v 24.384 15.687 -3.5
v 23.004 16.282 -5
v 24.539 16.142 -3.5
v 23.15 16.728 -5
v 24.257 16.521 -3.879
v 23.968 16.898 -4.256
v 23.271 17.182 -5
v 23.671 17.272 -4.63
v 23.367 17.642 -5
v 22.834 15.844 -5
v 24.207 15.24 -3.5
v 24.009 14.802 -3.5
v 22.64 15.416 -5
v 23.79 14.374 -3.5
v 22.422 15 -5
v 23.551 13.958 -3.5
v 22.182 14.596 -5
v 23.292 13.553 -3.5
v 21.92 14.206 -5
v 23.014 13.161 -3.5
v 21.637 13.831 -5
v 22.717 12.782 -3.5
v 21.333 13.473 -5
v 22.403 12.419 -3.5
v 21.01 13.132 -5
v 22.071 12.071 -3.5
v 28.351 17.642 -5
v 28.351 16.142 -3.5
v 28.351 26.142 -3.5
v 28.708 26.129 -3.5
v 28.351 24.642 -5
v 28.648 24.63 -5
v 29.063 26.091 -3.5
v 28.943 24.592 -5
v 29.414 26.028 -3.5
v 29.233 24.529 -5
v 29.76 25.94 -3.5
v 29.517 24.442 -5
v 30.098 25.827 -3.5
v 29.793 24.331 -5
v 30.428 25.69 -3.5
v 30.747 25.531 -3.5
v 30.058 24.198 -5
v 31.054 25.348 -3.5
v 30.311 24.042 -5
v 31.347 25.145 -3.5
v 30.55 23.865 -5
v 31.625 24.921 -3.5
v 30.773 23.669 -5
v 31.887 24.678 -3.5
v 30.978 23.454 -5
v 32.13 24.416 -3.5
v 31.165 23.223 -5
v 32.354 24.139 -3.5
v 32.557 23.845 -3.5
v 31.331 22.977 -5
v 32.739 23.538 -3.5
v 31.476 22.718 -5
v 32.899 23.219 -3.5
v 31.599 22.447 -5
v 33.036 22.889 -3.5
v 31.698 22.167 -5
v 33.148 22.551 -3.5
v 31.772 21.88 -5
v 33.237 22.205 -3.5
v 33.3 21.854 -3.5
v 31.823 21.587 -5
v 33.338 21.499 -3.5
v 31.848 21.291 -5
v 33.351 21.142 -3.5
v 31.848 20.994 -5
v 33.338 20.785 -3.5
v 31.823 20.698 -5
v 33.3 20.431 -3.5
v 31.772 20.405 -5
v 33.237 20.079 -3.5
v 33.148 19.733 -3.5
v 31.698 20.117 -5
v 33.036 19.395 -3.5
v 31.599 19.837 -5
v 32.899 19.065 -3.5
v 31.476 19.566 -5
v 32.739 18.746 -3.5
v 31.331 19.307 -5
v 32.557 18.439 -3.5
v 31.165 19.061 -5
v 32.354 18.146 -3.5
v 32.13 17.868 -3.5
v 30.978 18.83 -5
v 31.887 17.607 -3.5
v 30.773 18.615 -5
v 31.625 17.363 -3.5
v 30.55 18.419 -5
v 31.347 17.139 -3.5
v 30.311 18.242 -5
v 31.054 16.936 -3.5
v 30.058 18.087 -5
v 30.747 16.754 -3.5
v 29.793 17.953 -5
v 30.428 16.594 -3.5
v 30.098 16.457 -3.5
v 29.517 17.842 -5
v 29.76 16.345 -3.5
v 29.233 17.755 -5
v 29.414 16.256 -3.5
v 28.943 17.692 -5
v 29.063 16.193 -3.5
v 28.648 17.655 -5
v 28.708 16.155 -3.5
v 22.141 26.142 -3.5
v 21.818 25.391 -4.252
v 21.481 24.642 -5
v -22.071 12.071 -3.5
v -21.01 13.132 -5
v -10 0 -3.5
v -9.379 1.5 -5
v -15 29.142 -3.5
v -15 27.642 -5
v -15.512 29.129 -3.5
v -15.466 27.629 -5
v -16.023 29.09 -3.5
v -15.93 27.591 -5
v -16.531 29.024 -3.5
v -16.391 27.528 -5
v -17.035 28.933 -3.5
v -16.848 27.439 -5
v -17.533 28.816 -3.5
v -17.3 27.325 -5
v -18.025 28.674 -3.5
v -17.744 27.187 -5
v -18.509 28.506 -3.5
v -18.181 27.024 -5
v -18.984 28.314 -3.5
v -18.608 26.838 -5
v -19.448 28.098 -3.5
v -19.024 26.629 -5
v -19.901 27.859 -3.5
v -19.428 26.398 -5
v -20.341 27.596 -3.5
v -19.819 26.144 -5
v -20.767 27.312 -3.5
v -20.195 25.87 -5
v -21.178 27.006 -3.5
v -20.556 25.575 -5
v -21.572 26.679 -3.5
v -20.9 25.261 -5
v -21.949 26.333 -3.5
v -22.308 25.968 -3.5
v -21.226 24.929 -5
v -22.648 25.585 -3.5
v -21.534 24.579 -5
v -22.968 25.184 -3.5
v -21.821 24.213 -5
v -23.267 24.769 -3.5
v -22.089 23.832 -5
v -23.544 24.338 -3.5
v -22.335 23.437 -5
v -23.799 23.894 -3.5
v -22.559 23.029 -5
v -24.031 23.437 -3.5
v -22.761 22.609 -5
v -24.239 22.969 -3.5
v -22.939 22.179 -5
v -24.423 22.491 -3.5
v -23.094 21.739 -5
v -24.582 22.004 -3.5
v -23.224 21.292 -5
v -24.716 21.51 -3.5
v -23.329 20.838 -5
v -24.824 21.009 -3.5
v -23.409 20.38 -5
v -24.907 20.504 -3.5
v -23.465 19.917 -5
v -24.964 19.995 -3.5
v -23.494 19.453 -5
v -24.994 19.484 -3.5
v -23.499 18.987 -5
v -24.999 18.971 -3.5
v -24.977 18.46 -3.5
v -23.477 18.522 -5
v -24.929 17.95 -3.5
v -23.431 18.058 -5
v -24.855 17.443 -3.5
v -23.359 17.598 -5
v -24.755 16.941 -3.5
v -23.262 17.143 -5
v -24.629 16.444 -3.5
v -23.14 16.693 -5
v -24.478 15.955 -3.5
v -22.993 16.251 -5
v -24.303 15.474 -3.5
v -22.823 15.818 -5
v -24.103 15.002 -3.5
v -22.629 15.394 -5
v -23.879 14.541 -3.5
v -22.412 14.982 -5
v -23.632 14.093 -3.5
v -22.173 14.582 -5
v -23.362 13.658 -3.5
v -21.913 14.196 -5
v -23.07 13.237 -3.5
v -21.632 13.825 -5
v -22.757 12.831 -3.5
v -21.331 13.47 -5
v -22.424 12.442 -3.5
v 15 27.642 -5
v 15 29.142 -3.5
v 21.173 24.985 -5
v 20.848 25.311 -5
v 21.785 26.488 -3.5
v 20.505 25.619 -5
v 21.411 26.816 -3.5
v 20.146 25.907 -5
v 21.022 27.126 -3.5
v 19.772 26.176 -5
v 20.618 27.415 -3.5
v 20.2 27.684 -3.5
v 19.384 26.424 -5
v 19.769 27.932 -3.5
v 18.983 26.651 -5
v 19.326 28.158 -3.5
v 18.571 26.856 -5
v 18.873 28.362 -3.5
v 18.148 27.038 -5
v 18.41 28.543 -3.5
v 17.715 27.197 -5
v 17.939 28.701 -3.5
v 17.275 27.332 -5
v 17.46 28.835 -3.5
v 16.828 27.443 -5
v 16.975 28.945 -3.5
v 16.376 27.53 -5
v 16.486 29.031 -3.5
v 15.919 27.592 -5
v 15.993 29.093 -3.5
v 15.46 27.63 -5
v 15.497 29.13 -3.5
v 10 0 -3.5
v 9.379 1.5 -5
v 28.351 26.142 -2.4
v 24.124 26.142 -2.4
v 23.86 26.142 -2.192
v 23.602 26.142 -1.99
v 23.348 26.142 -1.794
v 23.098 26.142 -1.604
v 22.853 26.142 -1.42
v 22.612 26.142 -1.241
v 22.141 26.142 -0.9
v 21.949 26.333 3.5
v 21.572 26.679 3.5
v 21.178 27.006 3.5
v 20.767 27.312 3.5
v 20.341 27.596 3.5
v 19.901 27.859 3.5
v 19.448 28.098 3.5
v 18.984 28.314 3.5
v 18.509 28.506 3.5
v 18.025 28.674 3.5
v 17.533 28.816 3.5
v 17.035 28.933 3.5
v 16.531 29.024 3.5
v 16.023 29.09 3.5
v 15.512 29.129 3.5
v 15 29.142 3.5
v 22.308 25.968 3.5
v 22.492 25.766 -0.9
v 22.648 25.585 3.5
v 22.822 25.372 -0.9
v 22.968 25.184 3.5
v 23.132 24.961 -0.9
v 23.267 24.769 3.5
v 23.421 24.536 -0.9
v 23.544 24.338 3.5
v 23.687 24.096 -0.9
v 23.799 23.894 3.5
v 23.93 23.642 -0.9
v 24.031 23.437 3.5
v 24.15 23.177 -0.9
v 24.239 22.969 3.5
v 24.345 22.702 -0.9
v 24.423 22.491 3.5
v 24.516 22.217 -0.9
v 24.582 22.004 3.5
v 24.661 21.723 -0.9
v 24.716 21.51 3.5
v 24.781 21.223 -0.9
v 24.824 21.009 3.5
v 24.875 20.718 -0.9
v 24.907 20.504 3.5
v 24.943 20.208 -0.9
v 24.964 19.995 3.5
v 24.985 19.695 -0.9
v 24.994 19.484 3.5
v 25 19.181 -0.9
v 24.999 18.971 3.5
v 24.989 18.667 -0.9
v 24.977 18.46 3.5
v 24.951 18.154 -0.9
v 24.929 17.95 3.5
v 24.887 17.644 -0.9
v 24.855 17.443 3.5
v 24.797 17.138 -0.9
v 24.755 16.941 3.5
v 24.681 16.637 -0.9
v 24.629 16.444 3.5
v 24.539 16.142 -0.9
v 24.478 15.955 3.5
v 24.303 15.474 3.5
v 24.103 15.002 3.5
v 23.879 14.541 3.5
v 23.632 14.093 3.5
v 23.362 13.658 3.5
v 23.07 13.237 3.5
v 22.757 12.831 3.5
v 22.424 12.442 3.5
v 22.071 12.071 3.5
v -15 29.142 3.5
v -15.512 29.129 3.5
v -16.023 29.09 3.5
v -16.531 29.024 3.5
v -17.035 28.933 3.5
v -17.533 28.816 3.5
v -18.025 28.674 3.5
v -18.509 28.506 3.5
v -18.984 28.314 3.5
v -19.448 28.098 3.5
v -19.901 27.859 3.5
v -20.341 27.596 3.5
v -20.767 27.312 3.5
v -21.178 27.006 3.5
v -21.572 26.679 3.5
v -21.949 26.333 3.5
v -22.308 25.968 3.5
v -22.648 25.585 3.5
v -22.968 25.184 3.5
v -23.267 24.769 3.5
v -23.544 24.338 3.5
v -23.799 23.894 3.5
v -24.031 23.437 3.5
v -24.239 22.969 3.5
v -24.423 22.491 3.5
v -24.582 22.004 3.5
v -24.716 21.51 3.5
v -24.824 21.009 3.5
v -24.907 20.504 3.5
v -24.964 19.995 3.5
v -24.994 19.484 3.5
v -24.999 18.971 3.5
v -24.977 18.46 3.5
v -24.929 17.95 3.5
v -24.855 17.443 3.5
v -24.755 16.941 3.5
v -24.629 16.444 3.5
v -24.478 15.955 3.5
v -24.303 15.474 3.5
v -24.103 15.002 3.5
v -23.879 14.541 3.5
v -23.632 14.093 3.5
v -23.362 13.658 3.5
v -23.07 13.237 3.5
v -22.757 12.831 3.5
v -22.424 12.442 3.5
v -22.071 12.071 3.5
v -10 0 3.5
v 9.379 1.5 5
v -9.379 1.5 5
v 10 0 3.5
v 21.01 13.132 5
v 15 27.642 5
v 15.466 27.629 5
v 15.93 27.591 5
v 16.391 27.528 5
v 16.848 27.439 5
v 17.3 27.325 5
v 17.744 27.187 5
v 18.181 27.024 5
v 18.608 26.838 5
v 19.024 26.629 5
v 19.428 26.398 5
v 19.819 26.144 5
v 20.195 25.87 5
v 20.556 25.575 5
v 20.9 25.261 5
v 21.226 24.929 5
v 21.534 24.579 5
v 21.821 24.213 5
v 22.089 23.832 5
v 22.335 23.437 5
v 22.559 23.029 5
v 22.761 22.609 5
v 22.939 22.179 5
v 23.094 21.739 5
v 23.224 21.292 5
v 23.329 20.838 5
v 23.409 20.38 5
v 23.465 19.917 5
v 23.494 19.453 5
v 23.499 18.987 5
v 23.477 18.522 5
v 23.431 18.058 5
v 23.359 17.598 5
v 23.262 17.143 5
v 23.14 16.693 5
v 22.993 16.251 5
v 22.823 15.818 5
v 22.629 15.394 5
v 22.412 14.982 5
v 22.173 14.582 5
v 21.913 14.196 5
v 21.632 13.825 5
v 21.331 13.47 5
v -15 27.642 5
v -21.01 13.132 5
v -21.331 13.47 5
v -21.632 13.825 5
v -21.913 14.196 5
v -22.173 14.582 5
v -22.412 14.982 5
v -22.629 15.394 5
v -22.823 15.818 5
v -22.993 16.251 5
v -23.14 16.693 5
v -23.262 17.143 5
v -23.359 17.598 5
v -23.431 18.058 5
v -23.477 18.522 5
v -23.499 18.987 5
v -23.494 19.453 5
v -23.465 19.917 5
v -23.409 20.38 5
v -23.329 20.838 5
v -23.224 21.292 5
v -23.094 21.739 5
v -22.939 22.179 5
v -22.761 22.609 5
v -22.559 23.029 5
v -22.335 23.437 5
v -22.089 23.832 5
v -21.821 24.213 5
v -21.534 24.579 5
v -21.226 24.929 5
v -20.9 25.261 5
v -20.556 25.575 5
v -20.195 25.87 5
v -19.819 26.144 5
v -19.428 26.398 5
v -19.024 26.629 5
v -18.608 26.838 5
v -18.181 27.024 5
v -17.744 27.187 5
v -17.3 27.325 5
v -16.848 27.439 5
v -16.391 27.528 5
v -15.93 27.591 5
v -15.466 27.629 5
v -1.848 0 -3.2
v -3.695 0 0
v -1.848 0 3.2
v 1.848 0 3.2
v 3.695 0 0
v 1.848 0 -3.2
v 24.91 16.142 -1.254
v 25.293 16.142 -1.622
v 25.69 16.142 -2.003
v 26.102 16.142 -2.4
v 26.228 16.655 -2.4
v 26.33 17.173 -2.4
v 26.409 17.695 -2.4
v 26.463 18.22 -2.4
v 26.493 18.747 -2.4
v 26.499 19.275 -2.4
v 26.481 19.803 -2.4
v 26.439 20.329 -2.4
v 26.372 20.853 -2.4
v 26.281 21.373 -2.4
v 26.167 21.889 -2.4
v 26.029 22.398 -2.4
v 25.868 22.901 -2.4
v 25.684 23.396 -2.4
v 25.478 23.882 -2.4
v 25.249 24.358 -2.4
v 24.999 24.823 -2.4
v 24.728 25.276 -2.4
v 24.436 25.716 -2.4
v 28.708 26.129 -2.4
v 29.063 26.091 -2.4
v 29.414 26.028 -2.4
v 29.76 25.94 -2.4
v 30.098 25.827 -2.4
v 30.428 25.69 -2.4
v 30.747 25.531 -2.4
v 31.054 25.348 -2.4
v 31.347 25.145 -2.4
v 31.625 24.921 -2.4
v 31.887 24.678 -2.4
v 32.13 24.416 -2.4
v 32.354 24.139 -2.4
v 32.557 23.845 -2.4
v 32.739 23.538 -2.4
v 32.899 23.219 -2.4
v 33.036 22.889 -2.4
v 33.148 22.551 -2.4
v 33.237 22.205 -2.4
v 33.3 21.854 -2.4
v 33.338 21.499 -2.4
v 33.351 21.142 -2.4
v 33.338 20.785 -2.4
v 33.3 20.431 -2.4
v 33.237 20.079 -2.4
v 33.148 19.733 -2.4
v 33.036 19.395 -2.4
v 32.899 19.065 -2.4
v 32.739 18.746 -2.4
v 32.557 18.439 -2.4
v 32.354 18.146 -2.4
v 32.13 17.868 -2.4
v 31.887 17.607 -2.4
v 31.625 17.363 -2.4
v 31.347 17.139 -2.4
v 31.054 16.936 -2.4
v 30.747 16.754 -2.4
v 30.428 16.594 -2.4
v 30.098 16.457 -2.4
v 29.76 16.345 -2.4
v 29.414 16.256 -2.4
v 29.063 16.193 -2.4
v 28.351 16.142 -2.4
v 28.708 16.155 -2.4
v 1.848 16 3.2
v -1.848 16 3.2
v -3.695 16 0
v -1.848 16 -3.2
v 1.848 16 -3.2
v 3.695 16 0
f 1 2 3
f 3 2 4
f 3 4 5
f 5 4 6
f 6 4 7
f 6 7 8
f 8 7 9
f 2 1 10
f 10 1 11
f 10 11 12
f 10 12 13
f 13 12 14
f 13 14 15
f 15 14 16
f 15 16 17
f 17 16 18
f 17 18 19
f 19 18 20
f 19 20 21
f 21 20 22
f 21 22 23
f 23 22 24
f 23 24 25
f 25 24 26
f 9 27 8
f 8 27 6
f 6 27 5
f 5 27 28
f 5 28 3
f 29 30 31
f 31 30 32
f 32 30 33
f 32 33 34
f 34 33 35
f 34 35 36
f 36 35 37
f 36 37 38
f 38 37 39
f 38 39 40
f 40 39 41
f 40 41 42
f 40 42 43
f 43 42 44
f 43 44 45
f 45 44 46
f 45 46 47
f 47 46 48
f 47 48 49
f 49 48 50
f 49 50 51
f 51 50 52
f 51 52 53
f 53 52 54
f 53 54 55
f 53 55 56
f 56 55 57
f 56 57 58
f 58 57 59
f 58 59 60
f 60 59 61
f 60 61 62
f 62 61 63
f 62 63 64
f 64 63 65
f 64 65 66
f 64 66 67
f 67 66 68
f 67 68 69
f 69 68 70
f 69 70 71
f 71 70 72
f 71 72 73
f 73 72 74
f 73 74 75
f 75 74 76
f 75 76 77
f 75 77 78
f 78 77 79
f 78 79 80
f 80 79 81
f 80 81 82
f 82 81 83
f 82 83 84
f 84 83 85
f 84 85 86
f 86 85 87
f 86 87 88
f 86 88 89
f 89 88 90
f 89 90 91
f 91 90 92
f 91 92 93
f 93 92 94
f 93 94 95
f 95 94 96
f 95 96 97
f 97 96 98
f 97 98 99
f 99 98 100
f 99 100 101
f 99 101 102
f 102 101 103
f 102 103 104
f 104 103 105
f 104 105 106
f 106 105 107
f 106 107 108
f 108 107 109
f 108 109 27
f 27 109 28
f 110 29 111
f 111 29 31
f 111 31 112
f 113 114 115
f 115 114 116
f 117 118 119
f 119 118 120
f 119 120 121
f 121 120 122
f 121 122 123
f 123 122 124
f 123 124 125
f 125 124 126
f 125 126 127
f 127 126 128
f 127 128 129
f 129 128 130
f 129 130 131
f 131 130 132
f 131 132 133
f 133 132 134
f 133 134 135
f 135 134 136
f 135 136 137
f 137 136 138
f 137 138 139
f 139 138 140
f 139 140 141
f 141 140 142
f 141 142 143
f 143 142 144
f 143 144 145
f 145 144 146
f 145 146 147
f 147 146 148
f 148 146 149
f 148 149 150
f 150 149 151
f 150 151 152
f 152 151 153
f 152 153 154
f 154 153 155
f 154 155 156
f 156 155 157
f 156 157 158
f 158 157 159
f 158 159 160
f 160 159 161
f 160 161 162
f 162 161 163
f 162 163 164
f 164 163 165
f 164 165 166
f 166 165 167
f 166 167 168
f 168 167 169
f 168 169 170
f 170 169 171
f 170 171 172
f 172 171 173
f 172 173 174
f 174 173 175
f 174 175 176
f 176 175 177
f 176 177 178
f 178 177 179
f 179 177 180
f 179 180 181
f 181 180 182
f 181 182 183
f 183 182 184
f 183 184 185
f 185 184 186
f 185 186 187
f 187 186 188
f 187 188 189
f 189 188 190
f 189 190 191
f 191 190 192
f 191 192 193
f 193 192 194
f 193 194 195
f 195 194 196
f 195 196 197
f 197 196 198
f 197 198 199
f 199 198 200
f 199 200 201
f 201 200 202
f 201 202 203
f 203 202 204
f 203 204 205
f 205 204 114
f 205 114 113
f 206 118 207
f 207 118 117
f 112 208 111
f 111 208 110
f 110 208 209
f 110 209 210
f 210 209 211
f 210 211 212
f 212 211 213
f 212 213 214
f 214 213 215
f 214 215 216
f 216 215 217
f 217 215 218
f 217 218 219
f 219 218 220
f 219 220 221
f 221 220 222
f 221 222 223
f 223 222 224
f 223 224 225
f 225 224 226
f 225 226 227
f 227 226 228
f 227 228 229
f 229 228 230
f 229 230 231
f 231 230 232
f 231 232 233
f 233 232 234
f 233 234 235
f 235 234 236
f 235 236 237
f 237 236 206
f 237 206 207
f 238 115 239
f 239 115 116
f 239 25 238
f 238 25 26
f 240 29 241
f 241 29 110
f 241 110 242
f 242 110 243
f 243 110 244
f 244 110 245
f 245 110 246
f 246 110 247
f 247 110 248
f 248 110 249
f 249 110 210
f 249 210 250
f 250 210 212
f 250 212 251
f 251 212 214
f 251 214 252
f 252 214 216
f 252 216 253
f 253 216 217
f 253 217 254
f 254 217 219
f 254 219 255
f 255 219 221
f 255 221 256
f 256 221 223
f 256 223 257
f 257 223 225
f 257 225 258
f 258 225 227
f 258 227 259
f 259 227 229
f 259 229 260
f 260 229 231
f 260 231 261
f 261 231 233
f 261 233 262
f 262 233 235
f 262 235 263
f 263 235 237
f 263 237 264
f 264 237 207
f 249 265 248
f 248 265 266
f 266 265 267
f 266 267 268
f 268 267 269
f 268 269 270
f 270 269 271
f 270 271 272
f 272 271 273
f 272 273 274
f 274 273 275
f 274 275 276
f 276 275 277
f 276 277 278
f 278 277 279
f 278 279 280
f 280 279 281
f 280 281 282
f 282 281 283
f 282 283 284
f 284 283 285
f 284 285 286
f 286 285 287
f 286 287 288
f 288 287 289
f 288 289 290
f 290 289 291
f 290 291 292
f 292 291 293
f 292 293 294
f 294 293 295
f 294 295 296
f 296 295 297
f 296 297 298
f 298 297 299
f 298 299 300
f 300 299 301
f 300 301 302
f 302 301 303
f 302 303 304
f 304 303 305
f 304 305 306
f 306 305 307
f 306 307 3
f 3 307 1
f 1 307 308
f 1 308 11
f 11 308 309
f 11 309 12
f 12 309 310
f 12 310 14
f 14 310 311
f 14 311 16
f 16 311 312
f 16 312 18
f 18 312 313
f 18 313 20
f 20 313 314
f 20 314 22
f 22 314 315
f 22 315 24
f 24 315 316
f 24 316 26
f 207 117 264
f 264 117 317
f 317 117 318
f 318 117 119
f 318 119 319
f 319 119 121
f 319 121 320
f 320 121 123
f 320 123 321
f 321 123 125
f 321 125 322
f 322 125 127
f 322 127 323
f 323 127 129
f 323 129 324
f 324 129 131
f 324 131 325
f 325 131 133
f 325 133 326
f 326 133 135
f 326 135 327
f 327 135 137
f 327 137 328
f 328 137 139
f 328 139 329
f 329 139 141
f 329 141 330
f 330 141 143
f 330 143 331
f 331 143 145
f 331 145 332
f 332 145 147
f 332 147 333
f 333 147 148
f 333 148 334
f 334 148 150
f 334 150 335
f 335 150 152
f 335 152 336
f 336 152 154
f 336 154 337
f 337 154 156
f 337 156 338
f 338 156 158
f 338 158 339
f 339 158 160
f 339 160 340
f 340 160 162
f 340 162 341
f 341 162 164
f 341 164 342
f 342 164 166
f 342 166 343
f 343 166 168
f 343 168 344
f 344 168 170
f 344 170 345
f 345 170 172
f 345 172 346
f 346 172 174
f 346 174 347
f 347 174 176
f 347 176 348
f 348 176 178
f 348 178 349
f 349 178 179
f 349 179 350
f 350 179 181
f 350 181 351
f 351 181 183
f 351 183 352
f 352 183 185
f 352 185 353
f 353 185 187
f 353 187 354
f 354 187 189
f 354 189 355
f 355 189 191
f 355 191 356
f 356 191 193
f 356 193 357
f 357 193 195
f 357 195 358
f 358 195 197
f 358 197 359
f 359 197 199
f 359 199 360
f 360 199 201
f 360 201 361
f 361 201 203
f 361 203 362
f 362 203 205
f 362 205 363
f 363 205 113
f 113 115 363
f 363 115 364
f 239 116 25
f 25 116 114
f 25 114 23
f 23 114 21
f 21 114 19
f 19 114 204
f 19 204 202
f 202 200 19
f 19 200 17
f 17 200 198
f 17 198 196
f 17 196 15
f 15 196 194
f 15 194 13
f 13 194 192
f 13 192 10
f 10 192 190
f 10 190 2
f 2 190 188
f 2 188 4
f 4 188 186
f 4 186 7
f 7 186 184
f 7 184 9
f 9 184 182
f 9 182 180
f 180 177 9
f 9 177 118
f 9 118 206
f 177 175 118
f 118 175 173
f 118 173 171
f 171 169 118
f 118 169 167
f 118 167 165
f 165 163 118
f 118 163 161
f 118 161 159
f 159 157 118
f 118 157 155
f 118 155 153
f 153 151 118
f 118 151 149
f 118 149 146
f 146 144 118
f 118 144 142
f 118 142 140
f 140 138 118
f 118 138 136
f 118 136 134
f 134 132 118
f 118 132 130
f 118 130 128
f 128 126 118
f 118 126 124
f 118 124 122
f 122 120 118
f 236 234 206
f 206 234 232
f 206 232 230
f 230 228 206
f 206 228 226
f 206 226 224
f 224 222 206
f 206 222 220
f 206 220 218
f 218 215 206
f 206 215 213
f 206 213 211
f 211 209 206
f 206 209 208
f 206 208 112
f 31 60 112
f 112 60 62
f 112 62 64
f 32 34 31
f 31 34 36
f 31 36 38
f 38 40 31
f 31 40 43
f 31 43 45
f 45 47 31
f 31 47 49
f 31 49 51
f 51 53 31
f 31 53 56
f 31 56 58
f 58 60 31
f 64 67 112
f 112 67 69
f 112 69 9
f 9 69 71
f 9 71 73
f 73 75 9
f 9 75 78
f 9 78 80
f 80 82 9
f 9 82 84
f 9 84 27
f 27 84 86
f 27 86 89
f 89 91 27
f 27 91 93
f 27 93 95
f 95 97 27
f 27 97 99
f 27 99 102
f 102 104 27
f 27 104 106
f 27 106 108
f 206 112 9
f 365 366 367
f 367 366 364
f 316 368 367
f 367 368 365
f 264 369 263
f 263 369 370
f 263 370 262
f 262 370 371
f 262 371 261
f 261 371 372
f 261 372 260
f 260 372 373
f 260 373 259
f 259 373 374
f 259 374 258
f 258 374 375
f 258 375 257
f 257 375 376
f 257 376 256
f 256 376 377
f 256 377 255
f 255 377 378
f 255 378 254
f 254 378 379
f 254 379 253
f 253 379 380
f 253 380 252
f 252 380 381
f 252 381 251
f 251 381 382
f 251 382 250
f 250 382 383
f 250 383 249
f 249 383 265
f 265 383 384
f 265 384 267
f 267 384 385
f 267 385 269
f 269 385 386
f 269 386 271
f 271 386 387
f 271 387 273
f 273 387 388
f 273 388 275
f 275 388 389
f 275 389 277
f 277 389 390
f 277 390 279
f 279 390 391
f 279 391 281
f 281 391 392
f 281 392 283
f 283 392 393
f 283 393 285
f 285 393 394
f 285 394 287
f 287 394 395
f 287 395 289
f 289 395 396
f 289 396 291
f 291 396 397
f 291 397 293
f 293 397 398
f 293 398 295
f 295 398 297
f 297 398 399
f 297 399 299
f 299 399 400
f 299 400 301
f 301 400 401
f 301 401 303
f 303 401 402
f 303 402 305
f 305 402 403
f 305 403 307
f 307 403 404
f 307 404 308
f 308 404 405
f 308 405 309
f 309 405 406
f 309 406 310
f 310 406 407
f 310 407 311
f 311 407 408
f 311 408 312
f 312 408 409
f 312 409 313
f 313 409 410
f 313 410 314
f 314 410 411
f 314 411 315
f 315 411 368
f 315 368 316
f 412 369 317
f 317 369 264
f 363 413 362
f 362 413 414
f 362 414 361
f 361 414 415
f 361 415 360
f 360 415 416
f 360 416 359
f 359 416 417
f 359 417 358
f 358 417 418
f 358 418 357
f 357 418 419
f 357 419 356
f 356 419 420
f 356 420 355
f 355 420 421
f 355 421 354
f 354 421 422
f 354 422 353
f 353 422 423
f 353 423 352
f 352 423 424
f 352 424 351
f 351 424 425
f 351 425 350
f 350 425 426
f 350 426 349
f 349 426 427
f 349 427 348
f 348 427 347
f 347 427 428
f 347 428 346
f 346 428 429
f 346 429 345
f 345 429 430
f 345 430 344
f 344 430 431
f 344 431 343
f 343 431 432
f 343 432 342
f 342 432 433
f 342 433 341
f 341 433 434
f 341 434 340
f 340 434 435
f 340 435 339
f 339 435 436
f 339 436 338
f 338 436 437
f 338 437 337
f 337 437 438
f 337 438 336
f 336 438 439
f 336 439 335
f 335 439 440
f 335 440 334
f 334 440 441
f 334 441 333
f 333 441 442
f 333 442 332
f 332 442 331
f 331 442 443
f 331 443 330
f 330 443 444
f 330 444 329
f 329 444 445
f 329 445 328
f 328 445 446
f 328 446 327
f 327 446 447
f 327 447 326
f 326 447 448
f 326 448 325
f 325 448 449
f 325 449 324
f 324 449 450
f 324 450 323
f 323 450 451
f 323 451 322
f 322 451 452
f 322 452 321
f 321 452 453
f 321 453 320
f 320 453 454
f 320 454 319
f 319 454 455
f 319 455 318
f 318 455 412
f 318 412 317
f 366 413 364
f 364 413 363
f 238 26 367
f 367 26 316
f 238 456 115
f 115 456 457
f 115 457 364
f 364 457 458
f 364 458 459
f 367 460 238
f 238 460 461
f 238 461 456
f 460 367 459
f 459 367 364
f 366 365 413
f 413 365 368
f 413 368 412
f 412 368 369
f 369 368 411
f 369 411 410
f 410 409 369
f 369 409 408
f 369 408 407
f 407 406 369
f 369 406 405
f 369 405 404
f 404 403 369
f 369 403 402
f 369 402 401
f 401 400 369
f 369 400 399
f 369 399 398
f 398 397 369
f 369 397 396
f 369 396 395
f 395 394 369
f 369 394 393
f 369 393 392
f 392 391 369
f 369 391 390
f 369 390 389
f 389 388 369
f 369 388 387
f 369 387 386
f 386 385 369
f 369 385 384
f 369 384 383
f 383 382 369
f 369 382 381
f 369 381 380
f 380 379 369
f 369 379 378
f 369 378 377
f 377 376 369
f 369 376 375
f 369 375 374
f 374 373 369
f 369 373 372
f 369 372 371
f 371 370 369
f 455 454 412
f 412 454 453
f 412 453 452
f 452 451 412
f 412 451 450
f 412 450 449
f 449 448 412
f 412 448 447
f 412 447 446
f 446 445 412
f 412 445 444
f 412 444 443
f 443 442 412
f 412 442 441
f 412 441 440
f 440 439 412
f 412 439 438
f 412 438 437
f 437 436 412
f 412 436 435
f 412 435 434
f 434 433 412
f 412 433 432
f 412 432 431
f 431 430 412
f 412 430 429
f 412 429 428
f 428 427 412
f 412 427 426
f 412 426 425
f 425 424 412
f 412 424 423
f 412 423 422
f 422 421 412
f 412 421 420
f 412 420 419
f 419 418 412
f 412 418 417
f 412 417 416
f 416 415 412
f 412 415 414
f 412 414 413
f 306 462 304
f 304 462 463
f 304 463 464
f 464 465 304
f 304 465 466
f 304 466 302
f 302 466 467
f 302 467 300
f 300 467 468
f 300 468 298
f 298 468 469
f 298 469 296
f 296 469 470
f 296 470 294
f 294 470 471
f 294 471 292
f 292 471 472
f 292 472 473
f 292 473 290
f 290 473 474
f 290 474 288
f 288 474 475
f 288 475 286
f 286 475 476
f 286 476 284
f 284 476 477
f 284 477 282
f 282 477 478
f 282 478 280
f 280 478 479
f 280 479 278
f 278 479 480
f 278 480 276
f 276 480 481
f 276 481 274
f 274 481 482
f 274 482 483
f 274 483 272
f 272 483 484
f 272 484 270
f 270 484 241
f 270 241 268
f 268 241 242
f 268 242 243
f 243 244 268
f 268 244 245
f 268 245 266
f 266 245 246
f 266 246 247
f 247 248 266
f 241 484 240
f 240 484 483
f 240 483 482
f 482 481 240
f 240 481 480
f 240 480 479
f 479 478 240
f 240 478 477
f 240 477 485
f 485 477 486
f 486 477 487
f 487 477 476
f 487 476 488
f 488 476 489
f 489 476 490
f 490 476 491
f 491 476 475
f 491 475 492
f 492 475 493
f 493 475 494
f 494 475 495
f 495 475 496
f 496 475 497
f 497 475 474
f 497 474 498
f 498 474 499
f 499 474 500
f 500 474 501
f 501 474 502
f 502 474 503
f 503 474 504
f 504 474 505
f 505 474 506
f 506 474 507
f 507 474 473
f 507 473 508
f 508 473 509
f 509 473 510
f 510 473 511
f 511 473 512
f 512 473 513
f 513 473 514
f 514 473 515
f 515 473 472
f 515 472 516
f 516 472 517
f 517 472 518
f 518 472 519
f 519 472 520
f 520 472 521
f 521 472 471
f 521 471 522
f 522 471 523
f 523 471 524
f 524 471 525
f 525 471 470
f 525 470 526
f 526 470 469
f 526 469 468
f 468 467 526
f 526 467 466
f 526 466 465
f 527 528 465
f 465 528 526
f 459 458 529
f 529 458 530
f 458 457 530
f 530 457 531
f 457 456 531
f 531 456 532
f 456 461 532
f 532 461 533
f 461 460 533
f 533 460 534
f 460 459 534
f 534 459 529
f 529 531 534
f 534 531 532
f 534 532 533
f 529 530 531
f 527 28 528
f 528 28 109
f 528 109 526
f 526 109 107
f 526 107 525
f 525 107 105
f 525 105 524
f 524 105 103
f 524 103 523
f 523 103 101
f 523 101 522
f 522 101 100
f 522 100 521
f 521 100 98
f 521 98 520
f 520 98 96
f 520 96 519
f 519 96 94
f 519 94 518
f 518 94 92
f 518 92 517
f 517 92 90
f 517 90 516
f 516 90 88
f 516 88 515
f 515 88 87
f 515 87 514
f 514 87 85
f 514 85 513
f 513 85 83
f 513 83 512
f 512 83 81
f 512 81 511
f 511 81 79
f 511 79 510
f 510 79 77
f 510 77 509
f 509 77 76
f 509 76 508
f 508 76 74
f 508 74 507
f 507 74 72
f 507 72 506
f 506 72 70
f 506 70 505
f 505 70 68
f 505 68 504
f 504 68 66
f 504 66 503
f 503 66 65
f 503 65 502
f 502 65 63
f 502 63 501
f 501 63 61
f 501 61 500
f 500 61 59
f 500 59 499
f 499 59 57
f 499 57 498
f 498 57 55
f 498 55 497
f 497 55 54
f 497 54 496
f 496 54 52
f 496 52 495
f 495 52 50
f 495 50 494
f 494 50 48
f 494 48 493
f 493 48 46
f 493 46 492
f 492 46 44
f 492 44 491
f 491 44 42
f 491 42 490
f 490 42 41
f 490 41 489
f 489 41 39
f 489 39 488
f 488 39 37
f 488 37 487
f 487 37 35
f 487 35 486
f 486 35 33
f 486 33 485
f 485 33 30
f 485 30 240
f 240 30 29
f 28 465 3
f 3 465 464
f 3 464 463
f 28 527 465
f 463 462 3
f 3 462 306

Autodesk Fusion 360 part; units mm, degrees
sketch "Sketch1" plane through (0, 0, 0) normal (0, 0, 1) x (1, 0, 0)
  line L0 (-10, 0) -> (10, 0)
  line L1 (10, 0) -> (22.0711, 12.0711)
  arc A0 (22.0711, 12.0711) -> (15, 29.1421) centre (15, 19.1421) ccw
  line L2 (15, 29.1421) -> (-15, 29.1421)
  arc A1 (-15, 29.1421) -> (-22.0711, 12.0711) centre (-15, 19.1421) ccw
  line L3 (-22.0711, 12.0711) -> (-10, 0)
  line L4 (0, 0) -> (0, 29.1421) construction
  line L5 (-24, 23.501) -> (-24, 41.501)
  line L6 (-24, 41.501) -> (-18, 41.501)
  line L7 (-18, 41.501) -> (-18, 28.6815)
  line L8 (22.1414, 26.1421) -> (28.351, 26.1421)
  arc A2 (28.351, 16.1421) -> (28.351, 26.1421) centre (28.351, 21.1421) ccw
  line L9 (28.351, 16.1421) -> (24.5394, 16.1421)
  dimension "d1" = 10
  dimension "d2" = 135
  dimension "d3" = 50
  dimension "d4" = 20
  dimension "d5" = 6
  dimension "d6" = 18
  dimension "d7" = 18
  dimension "d18" = 5
  dimension "d19" = 3
  dimension "d20" = 3.5
extrude "Extrude1" add sketch "Sketch1" along normal mid plane 10 contours L0 L1 A0 L2 A1 L3
extrude "Extrude3" add sketch "Sketch1" along normal blind 2.6 from surface at -5 contours A0 L8 A2 L9
sketch "Sketch2" plane through (0, 0, 0) normal (0, 1, 0) x (1, 0, 0)
  line L0 (3.695, 0) -> (1.8475, 3.2)
  line L1 (1.8475, 3.2) -> (-1.8475, 3.2)
  line L2 (-1.8475, 3.2) -> (-3.695, 0)
  line L3 (-3.695, 0) -> (-1.8475, -3.2)
  line L4 (-1.8475, -3.2) -> (1.8475, -3.2)
  line L5 (1.8475, -3.2) -> (3.695, 0)
  dimension "d10" = 6.4
extrude "Extrude2" cut sketch "Sketch2" along normal blind 16
chamfer "Chamfer1" distance 1.5 angle 45 1 edges at (24.7243, 21.474, -2.4) 2 faces at (3.3333, 19.4281, 5) (3.3333, 19.4281, -5)
